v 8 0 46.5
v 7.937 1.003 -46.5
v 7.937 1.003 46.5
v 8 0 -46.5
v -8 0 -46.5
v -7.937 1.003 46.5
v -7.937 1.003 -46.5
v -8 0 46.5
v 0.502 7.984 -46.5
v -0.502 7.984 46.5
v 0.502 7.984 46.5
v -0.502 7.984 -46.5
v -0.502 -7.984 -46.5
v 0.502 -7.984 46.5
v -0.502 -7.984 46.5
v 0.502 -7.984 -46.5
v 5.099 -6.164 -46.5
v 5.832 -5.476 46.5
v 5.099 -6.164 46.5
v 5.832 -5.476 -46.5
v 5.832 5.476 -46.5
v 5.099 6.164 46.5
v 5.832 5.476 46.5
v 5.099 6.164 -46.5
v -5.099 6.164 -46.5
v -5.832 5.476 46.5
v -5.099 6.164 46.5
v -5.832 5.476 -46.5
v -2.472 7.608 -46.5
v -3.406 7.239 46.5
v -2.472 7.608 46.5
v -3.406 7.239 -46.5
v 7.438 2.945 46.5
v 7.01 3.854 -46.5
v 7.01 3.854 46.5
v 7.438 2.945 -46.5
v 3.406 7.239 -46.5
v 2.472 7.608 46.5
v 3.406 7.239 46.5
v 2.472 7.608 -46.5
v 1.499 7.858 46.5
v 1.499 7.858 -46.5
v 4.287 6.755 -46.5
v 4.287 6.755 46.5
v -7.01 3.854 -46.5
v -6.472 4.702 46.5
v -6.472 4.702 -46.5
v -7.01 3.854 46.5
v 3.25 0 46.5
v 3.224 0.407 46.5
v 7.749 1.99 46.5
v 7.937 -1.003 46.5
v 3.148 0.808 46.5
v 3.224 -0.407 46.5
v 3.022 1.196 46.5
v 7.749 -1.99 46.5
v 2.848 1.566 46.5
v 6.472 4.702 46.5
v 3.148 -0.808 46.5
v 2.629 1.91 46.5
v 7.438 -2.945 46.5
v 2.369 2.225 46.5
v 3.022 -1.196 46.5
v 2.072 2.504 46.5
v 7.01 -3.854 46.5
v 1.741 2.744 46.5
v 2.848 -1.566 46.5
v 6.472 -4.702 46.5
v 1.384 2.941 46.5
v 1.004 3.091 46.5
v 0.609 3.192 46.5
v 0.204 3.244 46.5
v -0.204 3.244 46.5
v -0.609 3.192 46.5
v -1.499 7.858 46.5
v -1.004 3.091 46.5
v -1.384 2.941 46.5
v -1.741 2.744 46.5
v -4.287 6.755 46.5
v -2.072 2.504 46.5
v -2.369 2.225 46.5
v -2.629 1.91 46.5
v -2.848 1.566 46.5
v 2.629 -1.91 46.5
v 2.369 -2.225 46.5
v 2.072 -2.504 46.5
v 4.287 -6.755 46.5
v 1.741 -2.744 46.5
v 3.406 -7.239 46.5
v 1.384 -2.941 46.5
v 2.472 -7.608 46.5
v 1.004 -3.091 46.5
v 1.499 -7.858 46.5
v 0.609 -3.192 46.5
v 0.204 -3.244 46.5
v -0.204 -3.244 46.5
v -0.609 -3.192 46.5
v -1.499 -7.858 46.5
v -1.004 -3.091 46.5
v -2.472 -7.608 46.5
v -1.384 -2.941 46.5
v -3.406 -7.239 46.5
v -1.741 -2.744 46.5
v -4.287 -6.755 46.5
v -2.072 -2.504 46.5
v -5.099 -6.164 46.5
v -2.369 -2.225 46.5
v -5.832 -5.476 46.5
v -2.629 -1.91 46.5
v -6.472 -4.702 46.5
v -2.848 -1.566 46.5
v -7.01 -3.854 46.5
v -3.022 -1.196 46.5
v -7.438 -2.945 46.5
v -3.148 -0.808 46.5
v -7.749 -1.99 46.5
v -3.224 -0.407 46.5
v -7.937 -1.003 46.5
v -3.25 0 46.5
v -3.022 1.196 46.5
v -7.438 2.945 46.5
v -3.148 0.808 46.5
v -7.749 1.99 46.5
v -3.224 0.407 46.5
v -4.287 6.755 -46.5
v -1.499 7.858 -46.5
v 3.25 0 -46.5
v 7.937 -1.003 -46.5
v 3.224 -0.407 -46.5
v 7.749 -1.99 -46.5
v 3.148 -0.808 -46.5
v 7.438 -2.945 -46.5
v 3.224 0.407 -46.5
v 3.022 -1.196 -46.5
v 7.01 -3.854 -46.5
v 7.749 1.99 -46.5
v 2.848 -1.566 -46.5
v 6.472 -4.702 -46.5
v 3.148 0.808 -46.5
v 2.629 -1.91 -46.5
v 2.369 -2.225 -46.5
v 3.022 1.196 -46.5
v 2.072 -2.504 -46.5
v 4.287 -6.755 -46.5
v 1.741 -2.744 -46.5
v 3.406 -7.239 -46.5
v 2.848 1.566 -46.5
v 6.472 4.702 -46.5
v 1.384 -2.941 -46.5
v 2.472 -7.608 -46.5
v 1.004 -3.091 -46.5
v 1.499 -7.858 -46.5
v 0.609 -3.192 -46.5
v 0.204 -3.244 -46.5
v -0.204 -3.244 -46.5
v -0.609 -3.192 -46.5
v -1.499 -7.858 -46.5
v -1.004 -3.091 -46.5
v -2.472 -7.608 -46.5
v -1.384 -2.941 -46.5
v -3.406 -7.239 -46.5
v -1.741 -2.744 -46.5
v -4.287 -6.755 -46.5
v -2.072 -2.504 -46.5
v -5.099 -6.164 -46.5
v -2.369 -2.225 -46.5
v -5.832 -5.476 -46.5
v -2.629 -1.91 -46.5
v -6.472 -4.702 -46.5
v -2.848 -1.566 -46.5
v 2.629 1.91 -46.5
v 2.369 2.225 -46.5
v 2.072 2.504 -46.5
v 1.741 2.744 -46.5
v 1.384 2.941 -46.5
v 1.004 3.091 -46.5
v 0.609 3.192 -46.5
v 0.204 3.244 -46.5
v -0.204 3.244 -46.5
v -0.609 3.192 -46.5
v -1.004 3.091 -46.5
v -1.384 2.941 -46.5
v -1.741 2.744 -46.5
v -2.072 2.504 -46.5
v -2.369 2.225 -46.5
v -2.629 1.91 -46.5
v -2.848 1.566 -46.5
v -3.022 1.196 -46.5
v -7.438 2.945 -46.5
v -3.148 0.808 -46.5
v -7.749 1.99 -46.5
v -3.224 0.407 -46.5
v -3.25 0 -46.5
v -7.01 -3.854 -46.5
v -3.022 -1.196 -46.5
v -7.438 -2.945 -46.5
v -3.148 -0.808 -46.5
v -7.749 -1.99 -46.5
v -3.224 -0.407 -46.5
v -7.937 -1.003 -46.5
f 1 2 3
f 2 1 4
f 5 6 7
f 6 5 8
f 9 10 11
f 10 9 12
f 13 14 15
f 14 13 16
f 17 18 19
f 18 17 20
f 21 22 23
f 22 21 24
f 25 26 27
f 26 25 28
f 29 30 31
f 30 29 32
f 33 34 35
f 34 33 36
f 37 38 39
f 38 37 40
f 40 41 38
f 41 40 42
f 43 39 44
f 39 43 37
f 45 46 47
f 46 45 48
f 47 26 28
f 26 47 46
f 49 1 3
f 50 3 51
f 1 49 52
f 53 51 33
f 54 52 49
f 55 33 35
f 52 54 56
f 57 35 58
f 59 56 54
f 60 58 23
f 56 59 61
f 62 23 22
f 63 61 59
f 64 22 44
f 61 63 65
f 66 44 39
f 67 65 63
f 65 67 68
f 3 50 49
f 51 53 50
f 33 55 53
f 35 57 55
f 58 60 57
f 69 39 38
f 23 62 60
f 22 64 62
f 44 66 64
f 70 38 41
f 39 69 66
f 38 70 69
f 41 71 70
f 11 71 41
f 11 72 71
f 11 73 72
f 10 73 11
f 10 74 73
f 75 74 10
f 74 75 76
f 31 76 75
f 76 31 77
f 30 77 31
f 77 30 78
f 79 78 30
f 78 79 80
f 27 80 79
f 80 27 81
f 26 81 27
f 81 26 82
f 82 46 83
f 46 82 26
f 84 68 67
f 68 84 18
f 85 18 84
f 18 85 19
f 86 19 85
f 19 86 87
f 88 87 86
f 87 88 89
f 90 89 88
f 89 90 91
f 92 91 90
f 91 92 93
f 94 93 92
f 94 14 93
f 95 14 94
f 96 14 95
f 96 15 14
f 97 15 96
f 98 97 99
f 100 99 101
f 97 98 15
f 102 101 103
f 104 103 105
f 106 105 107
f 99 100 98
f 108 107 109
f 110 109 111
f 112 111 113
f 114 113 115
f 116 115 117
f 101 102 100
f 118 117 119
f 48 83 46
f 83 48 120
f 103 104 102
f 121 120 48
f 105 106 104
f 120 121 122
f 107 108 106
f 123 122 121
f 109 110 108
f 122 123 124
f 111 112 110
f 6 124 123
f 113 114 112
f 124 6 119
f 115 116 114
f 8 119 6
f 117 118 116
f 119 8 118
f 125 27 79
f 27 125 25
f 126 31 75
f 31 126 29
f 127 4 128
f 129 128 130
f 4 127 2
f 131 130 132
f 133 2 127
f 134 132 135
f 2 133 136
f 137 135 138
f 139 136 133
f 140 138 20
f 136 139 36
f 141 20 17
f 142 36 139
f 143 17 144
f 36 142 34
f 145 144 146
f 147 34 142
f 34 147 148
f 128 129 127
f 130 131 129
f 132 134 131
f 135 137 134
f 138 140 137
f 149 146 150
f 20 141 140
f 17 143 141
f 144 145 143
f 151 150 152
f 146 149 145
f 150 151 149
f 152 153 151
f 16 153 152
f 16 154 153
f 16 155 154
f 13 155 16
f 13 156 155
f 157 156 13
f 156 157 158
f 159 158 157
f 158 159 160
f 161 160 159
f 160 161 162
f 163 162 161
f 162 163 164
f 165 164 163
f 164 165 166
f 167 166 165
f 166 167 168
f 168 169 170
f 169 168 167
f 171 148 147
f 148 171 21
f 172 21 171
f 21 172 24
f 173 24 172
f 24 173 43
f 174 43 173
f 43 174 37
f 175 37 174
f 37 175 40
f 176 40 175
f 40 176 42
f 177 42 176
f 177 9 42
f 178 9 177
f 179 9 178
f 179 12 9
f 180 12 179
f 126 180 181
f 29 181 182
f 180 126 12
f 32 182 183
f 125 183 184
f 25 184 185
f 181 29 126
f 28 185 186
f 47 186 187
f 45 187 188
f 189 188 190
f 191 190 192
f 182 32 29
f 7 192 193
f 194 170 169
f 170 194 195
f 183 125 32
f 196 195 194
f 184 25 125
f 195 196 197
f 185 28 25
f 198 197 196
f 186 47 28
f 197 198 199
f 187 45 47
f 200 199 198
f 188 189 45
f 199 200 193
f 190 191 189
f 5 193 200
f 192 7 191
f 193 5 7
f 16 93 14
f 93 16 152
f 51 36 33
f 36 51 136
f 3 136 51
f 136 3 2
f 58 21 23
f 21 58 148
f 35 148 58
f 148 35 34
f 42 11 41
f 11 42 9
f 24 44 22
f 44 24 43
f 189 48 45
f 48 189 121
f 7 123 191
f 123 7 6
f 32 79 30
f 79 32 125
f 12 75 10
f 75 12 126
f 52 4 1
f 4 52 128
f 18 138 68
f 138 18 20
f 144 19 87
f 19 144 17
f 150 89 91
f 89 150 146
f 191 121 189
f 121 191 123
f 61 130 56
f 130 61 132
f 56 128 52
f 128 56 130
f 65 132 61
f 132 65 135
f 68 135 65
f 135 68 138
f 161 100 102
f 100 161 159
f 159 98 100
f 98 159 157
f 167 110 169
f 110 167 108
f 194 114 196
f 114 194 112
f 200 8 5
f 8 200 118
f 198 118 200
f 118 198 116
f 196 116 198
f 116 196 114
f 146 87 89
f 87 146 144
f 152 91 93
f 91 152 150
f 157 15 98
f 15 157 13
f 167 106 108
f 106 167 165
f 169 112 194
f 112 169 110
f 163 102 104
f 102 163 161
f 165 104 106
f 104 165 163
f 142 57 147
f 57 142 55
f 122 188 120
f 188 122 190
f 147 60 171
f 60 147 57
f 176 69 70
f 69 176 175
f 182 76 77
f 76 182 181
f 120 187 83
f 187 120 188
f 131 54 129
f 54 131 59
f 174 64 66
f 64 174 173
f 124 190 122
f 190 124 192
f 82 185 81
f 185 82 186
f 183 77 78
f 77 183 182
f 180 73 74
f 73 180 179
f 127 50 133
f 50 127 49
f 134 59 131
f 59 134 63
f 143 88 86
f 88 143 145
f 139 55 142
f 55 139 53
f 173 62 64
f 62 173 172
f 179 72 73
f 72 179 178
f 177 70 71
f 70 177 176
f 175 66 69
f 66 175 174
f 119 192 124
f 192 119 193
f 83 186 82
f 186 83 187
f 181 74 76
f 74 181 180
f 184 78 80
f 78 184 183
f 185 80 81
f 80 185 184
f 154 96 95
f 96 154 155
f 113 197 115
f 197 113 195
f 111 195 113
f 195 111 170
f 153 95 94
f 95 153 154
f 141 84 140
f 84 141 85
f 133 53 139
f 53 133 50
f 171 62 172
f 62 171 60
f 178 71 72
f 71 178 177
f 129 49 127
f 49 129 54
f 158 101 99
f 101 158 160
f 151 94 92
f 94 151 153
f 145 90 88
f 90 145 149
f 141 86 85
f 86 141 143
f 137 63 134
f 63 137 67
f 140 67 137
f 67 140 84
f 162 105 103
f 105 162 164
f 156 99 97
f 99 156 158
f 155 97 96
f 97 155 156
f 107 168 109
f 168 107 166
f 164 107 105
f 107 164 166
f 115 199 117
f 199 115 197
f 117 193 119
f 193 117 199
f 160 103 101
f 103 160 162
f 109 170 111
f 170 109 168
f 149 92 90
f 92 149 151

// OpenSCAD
$fn = 50;


difference() {
	union() {
		translate(v = [0, 0, -46.5000000000]) {
			cylinder(h = 93, r = 8.0000000000);
		}
	}
	union() {
		translate(v = [0, 0, -100.0000000000]) {
			cylinder(h = 200, r = 3.2500000000);
		}
	}
}
